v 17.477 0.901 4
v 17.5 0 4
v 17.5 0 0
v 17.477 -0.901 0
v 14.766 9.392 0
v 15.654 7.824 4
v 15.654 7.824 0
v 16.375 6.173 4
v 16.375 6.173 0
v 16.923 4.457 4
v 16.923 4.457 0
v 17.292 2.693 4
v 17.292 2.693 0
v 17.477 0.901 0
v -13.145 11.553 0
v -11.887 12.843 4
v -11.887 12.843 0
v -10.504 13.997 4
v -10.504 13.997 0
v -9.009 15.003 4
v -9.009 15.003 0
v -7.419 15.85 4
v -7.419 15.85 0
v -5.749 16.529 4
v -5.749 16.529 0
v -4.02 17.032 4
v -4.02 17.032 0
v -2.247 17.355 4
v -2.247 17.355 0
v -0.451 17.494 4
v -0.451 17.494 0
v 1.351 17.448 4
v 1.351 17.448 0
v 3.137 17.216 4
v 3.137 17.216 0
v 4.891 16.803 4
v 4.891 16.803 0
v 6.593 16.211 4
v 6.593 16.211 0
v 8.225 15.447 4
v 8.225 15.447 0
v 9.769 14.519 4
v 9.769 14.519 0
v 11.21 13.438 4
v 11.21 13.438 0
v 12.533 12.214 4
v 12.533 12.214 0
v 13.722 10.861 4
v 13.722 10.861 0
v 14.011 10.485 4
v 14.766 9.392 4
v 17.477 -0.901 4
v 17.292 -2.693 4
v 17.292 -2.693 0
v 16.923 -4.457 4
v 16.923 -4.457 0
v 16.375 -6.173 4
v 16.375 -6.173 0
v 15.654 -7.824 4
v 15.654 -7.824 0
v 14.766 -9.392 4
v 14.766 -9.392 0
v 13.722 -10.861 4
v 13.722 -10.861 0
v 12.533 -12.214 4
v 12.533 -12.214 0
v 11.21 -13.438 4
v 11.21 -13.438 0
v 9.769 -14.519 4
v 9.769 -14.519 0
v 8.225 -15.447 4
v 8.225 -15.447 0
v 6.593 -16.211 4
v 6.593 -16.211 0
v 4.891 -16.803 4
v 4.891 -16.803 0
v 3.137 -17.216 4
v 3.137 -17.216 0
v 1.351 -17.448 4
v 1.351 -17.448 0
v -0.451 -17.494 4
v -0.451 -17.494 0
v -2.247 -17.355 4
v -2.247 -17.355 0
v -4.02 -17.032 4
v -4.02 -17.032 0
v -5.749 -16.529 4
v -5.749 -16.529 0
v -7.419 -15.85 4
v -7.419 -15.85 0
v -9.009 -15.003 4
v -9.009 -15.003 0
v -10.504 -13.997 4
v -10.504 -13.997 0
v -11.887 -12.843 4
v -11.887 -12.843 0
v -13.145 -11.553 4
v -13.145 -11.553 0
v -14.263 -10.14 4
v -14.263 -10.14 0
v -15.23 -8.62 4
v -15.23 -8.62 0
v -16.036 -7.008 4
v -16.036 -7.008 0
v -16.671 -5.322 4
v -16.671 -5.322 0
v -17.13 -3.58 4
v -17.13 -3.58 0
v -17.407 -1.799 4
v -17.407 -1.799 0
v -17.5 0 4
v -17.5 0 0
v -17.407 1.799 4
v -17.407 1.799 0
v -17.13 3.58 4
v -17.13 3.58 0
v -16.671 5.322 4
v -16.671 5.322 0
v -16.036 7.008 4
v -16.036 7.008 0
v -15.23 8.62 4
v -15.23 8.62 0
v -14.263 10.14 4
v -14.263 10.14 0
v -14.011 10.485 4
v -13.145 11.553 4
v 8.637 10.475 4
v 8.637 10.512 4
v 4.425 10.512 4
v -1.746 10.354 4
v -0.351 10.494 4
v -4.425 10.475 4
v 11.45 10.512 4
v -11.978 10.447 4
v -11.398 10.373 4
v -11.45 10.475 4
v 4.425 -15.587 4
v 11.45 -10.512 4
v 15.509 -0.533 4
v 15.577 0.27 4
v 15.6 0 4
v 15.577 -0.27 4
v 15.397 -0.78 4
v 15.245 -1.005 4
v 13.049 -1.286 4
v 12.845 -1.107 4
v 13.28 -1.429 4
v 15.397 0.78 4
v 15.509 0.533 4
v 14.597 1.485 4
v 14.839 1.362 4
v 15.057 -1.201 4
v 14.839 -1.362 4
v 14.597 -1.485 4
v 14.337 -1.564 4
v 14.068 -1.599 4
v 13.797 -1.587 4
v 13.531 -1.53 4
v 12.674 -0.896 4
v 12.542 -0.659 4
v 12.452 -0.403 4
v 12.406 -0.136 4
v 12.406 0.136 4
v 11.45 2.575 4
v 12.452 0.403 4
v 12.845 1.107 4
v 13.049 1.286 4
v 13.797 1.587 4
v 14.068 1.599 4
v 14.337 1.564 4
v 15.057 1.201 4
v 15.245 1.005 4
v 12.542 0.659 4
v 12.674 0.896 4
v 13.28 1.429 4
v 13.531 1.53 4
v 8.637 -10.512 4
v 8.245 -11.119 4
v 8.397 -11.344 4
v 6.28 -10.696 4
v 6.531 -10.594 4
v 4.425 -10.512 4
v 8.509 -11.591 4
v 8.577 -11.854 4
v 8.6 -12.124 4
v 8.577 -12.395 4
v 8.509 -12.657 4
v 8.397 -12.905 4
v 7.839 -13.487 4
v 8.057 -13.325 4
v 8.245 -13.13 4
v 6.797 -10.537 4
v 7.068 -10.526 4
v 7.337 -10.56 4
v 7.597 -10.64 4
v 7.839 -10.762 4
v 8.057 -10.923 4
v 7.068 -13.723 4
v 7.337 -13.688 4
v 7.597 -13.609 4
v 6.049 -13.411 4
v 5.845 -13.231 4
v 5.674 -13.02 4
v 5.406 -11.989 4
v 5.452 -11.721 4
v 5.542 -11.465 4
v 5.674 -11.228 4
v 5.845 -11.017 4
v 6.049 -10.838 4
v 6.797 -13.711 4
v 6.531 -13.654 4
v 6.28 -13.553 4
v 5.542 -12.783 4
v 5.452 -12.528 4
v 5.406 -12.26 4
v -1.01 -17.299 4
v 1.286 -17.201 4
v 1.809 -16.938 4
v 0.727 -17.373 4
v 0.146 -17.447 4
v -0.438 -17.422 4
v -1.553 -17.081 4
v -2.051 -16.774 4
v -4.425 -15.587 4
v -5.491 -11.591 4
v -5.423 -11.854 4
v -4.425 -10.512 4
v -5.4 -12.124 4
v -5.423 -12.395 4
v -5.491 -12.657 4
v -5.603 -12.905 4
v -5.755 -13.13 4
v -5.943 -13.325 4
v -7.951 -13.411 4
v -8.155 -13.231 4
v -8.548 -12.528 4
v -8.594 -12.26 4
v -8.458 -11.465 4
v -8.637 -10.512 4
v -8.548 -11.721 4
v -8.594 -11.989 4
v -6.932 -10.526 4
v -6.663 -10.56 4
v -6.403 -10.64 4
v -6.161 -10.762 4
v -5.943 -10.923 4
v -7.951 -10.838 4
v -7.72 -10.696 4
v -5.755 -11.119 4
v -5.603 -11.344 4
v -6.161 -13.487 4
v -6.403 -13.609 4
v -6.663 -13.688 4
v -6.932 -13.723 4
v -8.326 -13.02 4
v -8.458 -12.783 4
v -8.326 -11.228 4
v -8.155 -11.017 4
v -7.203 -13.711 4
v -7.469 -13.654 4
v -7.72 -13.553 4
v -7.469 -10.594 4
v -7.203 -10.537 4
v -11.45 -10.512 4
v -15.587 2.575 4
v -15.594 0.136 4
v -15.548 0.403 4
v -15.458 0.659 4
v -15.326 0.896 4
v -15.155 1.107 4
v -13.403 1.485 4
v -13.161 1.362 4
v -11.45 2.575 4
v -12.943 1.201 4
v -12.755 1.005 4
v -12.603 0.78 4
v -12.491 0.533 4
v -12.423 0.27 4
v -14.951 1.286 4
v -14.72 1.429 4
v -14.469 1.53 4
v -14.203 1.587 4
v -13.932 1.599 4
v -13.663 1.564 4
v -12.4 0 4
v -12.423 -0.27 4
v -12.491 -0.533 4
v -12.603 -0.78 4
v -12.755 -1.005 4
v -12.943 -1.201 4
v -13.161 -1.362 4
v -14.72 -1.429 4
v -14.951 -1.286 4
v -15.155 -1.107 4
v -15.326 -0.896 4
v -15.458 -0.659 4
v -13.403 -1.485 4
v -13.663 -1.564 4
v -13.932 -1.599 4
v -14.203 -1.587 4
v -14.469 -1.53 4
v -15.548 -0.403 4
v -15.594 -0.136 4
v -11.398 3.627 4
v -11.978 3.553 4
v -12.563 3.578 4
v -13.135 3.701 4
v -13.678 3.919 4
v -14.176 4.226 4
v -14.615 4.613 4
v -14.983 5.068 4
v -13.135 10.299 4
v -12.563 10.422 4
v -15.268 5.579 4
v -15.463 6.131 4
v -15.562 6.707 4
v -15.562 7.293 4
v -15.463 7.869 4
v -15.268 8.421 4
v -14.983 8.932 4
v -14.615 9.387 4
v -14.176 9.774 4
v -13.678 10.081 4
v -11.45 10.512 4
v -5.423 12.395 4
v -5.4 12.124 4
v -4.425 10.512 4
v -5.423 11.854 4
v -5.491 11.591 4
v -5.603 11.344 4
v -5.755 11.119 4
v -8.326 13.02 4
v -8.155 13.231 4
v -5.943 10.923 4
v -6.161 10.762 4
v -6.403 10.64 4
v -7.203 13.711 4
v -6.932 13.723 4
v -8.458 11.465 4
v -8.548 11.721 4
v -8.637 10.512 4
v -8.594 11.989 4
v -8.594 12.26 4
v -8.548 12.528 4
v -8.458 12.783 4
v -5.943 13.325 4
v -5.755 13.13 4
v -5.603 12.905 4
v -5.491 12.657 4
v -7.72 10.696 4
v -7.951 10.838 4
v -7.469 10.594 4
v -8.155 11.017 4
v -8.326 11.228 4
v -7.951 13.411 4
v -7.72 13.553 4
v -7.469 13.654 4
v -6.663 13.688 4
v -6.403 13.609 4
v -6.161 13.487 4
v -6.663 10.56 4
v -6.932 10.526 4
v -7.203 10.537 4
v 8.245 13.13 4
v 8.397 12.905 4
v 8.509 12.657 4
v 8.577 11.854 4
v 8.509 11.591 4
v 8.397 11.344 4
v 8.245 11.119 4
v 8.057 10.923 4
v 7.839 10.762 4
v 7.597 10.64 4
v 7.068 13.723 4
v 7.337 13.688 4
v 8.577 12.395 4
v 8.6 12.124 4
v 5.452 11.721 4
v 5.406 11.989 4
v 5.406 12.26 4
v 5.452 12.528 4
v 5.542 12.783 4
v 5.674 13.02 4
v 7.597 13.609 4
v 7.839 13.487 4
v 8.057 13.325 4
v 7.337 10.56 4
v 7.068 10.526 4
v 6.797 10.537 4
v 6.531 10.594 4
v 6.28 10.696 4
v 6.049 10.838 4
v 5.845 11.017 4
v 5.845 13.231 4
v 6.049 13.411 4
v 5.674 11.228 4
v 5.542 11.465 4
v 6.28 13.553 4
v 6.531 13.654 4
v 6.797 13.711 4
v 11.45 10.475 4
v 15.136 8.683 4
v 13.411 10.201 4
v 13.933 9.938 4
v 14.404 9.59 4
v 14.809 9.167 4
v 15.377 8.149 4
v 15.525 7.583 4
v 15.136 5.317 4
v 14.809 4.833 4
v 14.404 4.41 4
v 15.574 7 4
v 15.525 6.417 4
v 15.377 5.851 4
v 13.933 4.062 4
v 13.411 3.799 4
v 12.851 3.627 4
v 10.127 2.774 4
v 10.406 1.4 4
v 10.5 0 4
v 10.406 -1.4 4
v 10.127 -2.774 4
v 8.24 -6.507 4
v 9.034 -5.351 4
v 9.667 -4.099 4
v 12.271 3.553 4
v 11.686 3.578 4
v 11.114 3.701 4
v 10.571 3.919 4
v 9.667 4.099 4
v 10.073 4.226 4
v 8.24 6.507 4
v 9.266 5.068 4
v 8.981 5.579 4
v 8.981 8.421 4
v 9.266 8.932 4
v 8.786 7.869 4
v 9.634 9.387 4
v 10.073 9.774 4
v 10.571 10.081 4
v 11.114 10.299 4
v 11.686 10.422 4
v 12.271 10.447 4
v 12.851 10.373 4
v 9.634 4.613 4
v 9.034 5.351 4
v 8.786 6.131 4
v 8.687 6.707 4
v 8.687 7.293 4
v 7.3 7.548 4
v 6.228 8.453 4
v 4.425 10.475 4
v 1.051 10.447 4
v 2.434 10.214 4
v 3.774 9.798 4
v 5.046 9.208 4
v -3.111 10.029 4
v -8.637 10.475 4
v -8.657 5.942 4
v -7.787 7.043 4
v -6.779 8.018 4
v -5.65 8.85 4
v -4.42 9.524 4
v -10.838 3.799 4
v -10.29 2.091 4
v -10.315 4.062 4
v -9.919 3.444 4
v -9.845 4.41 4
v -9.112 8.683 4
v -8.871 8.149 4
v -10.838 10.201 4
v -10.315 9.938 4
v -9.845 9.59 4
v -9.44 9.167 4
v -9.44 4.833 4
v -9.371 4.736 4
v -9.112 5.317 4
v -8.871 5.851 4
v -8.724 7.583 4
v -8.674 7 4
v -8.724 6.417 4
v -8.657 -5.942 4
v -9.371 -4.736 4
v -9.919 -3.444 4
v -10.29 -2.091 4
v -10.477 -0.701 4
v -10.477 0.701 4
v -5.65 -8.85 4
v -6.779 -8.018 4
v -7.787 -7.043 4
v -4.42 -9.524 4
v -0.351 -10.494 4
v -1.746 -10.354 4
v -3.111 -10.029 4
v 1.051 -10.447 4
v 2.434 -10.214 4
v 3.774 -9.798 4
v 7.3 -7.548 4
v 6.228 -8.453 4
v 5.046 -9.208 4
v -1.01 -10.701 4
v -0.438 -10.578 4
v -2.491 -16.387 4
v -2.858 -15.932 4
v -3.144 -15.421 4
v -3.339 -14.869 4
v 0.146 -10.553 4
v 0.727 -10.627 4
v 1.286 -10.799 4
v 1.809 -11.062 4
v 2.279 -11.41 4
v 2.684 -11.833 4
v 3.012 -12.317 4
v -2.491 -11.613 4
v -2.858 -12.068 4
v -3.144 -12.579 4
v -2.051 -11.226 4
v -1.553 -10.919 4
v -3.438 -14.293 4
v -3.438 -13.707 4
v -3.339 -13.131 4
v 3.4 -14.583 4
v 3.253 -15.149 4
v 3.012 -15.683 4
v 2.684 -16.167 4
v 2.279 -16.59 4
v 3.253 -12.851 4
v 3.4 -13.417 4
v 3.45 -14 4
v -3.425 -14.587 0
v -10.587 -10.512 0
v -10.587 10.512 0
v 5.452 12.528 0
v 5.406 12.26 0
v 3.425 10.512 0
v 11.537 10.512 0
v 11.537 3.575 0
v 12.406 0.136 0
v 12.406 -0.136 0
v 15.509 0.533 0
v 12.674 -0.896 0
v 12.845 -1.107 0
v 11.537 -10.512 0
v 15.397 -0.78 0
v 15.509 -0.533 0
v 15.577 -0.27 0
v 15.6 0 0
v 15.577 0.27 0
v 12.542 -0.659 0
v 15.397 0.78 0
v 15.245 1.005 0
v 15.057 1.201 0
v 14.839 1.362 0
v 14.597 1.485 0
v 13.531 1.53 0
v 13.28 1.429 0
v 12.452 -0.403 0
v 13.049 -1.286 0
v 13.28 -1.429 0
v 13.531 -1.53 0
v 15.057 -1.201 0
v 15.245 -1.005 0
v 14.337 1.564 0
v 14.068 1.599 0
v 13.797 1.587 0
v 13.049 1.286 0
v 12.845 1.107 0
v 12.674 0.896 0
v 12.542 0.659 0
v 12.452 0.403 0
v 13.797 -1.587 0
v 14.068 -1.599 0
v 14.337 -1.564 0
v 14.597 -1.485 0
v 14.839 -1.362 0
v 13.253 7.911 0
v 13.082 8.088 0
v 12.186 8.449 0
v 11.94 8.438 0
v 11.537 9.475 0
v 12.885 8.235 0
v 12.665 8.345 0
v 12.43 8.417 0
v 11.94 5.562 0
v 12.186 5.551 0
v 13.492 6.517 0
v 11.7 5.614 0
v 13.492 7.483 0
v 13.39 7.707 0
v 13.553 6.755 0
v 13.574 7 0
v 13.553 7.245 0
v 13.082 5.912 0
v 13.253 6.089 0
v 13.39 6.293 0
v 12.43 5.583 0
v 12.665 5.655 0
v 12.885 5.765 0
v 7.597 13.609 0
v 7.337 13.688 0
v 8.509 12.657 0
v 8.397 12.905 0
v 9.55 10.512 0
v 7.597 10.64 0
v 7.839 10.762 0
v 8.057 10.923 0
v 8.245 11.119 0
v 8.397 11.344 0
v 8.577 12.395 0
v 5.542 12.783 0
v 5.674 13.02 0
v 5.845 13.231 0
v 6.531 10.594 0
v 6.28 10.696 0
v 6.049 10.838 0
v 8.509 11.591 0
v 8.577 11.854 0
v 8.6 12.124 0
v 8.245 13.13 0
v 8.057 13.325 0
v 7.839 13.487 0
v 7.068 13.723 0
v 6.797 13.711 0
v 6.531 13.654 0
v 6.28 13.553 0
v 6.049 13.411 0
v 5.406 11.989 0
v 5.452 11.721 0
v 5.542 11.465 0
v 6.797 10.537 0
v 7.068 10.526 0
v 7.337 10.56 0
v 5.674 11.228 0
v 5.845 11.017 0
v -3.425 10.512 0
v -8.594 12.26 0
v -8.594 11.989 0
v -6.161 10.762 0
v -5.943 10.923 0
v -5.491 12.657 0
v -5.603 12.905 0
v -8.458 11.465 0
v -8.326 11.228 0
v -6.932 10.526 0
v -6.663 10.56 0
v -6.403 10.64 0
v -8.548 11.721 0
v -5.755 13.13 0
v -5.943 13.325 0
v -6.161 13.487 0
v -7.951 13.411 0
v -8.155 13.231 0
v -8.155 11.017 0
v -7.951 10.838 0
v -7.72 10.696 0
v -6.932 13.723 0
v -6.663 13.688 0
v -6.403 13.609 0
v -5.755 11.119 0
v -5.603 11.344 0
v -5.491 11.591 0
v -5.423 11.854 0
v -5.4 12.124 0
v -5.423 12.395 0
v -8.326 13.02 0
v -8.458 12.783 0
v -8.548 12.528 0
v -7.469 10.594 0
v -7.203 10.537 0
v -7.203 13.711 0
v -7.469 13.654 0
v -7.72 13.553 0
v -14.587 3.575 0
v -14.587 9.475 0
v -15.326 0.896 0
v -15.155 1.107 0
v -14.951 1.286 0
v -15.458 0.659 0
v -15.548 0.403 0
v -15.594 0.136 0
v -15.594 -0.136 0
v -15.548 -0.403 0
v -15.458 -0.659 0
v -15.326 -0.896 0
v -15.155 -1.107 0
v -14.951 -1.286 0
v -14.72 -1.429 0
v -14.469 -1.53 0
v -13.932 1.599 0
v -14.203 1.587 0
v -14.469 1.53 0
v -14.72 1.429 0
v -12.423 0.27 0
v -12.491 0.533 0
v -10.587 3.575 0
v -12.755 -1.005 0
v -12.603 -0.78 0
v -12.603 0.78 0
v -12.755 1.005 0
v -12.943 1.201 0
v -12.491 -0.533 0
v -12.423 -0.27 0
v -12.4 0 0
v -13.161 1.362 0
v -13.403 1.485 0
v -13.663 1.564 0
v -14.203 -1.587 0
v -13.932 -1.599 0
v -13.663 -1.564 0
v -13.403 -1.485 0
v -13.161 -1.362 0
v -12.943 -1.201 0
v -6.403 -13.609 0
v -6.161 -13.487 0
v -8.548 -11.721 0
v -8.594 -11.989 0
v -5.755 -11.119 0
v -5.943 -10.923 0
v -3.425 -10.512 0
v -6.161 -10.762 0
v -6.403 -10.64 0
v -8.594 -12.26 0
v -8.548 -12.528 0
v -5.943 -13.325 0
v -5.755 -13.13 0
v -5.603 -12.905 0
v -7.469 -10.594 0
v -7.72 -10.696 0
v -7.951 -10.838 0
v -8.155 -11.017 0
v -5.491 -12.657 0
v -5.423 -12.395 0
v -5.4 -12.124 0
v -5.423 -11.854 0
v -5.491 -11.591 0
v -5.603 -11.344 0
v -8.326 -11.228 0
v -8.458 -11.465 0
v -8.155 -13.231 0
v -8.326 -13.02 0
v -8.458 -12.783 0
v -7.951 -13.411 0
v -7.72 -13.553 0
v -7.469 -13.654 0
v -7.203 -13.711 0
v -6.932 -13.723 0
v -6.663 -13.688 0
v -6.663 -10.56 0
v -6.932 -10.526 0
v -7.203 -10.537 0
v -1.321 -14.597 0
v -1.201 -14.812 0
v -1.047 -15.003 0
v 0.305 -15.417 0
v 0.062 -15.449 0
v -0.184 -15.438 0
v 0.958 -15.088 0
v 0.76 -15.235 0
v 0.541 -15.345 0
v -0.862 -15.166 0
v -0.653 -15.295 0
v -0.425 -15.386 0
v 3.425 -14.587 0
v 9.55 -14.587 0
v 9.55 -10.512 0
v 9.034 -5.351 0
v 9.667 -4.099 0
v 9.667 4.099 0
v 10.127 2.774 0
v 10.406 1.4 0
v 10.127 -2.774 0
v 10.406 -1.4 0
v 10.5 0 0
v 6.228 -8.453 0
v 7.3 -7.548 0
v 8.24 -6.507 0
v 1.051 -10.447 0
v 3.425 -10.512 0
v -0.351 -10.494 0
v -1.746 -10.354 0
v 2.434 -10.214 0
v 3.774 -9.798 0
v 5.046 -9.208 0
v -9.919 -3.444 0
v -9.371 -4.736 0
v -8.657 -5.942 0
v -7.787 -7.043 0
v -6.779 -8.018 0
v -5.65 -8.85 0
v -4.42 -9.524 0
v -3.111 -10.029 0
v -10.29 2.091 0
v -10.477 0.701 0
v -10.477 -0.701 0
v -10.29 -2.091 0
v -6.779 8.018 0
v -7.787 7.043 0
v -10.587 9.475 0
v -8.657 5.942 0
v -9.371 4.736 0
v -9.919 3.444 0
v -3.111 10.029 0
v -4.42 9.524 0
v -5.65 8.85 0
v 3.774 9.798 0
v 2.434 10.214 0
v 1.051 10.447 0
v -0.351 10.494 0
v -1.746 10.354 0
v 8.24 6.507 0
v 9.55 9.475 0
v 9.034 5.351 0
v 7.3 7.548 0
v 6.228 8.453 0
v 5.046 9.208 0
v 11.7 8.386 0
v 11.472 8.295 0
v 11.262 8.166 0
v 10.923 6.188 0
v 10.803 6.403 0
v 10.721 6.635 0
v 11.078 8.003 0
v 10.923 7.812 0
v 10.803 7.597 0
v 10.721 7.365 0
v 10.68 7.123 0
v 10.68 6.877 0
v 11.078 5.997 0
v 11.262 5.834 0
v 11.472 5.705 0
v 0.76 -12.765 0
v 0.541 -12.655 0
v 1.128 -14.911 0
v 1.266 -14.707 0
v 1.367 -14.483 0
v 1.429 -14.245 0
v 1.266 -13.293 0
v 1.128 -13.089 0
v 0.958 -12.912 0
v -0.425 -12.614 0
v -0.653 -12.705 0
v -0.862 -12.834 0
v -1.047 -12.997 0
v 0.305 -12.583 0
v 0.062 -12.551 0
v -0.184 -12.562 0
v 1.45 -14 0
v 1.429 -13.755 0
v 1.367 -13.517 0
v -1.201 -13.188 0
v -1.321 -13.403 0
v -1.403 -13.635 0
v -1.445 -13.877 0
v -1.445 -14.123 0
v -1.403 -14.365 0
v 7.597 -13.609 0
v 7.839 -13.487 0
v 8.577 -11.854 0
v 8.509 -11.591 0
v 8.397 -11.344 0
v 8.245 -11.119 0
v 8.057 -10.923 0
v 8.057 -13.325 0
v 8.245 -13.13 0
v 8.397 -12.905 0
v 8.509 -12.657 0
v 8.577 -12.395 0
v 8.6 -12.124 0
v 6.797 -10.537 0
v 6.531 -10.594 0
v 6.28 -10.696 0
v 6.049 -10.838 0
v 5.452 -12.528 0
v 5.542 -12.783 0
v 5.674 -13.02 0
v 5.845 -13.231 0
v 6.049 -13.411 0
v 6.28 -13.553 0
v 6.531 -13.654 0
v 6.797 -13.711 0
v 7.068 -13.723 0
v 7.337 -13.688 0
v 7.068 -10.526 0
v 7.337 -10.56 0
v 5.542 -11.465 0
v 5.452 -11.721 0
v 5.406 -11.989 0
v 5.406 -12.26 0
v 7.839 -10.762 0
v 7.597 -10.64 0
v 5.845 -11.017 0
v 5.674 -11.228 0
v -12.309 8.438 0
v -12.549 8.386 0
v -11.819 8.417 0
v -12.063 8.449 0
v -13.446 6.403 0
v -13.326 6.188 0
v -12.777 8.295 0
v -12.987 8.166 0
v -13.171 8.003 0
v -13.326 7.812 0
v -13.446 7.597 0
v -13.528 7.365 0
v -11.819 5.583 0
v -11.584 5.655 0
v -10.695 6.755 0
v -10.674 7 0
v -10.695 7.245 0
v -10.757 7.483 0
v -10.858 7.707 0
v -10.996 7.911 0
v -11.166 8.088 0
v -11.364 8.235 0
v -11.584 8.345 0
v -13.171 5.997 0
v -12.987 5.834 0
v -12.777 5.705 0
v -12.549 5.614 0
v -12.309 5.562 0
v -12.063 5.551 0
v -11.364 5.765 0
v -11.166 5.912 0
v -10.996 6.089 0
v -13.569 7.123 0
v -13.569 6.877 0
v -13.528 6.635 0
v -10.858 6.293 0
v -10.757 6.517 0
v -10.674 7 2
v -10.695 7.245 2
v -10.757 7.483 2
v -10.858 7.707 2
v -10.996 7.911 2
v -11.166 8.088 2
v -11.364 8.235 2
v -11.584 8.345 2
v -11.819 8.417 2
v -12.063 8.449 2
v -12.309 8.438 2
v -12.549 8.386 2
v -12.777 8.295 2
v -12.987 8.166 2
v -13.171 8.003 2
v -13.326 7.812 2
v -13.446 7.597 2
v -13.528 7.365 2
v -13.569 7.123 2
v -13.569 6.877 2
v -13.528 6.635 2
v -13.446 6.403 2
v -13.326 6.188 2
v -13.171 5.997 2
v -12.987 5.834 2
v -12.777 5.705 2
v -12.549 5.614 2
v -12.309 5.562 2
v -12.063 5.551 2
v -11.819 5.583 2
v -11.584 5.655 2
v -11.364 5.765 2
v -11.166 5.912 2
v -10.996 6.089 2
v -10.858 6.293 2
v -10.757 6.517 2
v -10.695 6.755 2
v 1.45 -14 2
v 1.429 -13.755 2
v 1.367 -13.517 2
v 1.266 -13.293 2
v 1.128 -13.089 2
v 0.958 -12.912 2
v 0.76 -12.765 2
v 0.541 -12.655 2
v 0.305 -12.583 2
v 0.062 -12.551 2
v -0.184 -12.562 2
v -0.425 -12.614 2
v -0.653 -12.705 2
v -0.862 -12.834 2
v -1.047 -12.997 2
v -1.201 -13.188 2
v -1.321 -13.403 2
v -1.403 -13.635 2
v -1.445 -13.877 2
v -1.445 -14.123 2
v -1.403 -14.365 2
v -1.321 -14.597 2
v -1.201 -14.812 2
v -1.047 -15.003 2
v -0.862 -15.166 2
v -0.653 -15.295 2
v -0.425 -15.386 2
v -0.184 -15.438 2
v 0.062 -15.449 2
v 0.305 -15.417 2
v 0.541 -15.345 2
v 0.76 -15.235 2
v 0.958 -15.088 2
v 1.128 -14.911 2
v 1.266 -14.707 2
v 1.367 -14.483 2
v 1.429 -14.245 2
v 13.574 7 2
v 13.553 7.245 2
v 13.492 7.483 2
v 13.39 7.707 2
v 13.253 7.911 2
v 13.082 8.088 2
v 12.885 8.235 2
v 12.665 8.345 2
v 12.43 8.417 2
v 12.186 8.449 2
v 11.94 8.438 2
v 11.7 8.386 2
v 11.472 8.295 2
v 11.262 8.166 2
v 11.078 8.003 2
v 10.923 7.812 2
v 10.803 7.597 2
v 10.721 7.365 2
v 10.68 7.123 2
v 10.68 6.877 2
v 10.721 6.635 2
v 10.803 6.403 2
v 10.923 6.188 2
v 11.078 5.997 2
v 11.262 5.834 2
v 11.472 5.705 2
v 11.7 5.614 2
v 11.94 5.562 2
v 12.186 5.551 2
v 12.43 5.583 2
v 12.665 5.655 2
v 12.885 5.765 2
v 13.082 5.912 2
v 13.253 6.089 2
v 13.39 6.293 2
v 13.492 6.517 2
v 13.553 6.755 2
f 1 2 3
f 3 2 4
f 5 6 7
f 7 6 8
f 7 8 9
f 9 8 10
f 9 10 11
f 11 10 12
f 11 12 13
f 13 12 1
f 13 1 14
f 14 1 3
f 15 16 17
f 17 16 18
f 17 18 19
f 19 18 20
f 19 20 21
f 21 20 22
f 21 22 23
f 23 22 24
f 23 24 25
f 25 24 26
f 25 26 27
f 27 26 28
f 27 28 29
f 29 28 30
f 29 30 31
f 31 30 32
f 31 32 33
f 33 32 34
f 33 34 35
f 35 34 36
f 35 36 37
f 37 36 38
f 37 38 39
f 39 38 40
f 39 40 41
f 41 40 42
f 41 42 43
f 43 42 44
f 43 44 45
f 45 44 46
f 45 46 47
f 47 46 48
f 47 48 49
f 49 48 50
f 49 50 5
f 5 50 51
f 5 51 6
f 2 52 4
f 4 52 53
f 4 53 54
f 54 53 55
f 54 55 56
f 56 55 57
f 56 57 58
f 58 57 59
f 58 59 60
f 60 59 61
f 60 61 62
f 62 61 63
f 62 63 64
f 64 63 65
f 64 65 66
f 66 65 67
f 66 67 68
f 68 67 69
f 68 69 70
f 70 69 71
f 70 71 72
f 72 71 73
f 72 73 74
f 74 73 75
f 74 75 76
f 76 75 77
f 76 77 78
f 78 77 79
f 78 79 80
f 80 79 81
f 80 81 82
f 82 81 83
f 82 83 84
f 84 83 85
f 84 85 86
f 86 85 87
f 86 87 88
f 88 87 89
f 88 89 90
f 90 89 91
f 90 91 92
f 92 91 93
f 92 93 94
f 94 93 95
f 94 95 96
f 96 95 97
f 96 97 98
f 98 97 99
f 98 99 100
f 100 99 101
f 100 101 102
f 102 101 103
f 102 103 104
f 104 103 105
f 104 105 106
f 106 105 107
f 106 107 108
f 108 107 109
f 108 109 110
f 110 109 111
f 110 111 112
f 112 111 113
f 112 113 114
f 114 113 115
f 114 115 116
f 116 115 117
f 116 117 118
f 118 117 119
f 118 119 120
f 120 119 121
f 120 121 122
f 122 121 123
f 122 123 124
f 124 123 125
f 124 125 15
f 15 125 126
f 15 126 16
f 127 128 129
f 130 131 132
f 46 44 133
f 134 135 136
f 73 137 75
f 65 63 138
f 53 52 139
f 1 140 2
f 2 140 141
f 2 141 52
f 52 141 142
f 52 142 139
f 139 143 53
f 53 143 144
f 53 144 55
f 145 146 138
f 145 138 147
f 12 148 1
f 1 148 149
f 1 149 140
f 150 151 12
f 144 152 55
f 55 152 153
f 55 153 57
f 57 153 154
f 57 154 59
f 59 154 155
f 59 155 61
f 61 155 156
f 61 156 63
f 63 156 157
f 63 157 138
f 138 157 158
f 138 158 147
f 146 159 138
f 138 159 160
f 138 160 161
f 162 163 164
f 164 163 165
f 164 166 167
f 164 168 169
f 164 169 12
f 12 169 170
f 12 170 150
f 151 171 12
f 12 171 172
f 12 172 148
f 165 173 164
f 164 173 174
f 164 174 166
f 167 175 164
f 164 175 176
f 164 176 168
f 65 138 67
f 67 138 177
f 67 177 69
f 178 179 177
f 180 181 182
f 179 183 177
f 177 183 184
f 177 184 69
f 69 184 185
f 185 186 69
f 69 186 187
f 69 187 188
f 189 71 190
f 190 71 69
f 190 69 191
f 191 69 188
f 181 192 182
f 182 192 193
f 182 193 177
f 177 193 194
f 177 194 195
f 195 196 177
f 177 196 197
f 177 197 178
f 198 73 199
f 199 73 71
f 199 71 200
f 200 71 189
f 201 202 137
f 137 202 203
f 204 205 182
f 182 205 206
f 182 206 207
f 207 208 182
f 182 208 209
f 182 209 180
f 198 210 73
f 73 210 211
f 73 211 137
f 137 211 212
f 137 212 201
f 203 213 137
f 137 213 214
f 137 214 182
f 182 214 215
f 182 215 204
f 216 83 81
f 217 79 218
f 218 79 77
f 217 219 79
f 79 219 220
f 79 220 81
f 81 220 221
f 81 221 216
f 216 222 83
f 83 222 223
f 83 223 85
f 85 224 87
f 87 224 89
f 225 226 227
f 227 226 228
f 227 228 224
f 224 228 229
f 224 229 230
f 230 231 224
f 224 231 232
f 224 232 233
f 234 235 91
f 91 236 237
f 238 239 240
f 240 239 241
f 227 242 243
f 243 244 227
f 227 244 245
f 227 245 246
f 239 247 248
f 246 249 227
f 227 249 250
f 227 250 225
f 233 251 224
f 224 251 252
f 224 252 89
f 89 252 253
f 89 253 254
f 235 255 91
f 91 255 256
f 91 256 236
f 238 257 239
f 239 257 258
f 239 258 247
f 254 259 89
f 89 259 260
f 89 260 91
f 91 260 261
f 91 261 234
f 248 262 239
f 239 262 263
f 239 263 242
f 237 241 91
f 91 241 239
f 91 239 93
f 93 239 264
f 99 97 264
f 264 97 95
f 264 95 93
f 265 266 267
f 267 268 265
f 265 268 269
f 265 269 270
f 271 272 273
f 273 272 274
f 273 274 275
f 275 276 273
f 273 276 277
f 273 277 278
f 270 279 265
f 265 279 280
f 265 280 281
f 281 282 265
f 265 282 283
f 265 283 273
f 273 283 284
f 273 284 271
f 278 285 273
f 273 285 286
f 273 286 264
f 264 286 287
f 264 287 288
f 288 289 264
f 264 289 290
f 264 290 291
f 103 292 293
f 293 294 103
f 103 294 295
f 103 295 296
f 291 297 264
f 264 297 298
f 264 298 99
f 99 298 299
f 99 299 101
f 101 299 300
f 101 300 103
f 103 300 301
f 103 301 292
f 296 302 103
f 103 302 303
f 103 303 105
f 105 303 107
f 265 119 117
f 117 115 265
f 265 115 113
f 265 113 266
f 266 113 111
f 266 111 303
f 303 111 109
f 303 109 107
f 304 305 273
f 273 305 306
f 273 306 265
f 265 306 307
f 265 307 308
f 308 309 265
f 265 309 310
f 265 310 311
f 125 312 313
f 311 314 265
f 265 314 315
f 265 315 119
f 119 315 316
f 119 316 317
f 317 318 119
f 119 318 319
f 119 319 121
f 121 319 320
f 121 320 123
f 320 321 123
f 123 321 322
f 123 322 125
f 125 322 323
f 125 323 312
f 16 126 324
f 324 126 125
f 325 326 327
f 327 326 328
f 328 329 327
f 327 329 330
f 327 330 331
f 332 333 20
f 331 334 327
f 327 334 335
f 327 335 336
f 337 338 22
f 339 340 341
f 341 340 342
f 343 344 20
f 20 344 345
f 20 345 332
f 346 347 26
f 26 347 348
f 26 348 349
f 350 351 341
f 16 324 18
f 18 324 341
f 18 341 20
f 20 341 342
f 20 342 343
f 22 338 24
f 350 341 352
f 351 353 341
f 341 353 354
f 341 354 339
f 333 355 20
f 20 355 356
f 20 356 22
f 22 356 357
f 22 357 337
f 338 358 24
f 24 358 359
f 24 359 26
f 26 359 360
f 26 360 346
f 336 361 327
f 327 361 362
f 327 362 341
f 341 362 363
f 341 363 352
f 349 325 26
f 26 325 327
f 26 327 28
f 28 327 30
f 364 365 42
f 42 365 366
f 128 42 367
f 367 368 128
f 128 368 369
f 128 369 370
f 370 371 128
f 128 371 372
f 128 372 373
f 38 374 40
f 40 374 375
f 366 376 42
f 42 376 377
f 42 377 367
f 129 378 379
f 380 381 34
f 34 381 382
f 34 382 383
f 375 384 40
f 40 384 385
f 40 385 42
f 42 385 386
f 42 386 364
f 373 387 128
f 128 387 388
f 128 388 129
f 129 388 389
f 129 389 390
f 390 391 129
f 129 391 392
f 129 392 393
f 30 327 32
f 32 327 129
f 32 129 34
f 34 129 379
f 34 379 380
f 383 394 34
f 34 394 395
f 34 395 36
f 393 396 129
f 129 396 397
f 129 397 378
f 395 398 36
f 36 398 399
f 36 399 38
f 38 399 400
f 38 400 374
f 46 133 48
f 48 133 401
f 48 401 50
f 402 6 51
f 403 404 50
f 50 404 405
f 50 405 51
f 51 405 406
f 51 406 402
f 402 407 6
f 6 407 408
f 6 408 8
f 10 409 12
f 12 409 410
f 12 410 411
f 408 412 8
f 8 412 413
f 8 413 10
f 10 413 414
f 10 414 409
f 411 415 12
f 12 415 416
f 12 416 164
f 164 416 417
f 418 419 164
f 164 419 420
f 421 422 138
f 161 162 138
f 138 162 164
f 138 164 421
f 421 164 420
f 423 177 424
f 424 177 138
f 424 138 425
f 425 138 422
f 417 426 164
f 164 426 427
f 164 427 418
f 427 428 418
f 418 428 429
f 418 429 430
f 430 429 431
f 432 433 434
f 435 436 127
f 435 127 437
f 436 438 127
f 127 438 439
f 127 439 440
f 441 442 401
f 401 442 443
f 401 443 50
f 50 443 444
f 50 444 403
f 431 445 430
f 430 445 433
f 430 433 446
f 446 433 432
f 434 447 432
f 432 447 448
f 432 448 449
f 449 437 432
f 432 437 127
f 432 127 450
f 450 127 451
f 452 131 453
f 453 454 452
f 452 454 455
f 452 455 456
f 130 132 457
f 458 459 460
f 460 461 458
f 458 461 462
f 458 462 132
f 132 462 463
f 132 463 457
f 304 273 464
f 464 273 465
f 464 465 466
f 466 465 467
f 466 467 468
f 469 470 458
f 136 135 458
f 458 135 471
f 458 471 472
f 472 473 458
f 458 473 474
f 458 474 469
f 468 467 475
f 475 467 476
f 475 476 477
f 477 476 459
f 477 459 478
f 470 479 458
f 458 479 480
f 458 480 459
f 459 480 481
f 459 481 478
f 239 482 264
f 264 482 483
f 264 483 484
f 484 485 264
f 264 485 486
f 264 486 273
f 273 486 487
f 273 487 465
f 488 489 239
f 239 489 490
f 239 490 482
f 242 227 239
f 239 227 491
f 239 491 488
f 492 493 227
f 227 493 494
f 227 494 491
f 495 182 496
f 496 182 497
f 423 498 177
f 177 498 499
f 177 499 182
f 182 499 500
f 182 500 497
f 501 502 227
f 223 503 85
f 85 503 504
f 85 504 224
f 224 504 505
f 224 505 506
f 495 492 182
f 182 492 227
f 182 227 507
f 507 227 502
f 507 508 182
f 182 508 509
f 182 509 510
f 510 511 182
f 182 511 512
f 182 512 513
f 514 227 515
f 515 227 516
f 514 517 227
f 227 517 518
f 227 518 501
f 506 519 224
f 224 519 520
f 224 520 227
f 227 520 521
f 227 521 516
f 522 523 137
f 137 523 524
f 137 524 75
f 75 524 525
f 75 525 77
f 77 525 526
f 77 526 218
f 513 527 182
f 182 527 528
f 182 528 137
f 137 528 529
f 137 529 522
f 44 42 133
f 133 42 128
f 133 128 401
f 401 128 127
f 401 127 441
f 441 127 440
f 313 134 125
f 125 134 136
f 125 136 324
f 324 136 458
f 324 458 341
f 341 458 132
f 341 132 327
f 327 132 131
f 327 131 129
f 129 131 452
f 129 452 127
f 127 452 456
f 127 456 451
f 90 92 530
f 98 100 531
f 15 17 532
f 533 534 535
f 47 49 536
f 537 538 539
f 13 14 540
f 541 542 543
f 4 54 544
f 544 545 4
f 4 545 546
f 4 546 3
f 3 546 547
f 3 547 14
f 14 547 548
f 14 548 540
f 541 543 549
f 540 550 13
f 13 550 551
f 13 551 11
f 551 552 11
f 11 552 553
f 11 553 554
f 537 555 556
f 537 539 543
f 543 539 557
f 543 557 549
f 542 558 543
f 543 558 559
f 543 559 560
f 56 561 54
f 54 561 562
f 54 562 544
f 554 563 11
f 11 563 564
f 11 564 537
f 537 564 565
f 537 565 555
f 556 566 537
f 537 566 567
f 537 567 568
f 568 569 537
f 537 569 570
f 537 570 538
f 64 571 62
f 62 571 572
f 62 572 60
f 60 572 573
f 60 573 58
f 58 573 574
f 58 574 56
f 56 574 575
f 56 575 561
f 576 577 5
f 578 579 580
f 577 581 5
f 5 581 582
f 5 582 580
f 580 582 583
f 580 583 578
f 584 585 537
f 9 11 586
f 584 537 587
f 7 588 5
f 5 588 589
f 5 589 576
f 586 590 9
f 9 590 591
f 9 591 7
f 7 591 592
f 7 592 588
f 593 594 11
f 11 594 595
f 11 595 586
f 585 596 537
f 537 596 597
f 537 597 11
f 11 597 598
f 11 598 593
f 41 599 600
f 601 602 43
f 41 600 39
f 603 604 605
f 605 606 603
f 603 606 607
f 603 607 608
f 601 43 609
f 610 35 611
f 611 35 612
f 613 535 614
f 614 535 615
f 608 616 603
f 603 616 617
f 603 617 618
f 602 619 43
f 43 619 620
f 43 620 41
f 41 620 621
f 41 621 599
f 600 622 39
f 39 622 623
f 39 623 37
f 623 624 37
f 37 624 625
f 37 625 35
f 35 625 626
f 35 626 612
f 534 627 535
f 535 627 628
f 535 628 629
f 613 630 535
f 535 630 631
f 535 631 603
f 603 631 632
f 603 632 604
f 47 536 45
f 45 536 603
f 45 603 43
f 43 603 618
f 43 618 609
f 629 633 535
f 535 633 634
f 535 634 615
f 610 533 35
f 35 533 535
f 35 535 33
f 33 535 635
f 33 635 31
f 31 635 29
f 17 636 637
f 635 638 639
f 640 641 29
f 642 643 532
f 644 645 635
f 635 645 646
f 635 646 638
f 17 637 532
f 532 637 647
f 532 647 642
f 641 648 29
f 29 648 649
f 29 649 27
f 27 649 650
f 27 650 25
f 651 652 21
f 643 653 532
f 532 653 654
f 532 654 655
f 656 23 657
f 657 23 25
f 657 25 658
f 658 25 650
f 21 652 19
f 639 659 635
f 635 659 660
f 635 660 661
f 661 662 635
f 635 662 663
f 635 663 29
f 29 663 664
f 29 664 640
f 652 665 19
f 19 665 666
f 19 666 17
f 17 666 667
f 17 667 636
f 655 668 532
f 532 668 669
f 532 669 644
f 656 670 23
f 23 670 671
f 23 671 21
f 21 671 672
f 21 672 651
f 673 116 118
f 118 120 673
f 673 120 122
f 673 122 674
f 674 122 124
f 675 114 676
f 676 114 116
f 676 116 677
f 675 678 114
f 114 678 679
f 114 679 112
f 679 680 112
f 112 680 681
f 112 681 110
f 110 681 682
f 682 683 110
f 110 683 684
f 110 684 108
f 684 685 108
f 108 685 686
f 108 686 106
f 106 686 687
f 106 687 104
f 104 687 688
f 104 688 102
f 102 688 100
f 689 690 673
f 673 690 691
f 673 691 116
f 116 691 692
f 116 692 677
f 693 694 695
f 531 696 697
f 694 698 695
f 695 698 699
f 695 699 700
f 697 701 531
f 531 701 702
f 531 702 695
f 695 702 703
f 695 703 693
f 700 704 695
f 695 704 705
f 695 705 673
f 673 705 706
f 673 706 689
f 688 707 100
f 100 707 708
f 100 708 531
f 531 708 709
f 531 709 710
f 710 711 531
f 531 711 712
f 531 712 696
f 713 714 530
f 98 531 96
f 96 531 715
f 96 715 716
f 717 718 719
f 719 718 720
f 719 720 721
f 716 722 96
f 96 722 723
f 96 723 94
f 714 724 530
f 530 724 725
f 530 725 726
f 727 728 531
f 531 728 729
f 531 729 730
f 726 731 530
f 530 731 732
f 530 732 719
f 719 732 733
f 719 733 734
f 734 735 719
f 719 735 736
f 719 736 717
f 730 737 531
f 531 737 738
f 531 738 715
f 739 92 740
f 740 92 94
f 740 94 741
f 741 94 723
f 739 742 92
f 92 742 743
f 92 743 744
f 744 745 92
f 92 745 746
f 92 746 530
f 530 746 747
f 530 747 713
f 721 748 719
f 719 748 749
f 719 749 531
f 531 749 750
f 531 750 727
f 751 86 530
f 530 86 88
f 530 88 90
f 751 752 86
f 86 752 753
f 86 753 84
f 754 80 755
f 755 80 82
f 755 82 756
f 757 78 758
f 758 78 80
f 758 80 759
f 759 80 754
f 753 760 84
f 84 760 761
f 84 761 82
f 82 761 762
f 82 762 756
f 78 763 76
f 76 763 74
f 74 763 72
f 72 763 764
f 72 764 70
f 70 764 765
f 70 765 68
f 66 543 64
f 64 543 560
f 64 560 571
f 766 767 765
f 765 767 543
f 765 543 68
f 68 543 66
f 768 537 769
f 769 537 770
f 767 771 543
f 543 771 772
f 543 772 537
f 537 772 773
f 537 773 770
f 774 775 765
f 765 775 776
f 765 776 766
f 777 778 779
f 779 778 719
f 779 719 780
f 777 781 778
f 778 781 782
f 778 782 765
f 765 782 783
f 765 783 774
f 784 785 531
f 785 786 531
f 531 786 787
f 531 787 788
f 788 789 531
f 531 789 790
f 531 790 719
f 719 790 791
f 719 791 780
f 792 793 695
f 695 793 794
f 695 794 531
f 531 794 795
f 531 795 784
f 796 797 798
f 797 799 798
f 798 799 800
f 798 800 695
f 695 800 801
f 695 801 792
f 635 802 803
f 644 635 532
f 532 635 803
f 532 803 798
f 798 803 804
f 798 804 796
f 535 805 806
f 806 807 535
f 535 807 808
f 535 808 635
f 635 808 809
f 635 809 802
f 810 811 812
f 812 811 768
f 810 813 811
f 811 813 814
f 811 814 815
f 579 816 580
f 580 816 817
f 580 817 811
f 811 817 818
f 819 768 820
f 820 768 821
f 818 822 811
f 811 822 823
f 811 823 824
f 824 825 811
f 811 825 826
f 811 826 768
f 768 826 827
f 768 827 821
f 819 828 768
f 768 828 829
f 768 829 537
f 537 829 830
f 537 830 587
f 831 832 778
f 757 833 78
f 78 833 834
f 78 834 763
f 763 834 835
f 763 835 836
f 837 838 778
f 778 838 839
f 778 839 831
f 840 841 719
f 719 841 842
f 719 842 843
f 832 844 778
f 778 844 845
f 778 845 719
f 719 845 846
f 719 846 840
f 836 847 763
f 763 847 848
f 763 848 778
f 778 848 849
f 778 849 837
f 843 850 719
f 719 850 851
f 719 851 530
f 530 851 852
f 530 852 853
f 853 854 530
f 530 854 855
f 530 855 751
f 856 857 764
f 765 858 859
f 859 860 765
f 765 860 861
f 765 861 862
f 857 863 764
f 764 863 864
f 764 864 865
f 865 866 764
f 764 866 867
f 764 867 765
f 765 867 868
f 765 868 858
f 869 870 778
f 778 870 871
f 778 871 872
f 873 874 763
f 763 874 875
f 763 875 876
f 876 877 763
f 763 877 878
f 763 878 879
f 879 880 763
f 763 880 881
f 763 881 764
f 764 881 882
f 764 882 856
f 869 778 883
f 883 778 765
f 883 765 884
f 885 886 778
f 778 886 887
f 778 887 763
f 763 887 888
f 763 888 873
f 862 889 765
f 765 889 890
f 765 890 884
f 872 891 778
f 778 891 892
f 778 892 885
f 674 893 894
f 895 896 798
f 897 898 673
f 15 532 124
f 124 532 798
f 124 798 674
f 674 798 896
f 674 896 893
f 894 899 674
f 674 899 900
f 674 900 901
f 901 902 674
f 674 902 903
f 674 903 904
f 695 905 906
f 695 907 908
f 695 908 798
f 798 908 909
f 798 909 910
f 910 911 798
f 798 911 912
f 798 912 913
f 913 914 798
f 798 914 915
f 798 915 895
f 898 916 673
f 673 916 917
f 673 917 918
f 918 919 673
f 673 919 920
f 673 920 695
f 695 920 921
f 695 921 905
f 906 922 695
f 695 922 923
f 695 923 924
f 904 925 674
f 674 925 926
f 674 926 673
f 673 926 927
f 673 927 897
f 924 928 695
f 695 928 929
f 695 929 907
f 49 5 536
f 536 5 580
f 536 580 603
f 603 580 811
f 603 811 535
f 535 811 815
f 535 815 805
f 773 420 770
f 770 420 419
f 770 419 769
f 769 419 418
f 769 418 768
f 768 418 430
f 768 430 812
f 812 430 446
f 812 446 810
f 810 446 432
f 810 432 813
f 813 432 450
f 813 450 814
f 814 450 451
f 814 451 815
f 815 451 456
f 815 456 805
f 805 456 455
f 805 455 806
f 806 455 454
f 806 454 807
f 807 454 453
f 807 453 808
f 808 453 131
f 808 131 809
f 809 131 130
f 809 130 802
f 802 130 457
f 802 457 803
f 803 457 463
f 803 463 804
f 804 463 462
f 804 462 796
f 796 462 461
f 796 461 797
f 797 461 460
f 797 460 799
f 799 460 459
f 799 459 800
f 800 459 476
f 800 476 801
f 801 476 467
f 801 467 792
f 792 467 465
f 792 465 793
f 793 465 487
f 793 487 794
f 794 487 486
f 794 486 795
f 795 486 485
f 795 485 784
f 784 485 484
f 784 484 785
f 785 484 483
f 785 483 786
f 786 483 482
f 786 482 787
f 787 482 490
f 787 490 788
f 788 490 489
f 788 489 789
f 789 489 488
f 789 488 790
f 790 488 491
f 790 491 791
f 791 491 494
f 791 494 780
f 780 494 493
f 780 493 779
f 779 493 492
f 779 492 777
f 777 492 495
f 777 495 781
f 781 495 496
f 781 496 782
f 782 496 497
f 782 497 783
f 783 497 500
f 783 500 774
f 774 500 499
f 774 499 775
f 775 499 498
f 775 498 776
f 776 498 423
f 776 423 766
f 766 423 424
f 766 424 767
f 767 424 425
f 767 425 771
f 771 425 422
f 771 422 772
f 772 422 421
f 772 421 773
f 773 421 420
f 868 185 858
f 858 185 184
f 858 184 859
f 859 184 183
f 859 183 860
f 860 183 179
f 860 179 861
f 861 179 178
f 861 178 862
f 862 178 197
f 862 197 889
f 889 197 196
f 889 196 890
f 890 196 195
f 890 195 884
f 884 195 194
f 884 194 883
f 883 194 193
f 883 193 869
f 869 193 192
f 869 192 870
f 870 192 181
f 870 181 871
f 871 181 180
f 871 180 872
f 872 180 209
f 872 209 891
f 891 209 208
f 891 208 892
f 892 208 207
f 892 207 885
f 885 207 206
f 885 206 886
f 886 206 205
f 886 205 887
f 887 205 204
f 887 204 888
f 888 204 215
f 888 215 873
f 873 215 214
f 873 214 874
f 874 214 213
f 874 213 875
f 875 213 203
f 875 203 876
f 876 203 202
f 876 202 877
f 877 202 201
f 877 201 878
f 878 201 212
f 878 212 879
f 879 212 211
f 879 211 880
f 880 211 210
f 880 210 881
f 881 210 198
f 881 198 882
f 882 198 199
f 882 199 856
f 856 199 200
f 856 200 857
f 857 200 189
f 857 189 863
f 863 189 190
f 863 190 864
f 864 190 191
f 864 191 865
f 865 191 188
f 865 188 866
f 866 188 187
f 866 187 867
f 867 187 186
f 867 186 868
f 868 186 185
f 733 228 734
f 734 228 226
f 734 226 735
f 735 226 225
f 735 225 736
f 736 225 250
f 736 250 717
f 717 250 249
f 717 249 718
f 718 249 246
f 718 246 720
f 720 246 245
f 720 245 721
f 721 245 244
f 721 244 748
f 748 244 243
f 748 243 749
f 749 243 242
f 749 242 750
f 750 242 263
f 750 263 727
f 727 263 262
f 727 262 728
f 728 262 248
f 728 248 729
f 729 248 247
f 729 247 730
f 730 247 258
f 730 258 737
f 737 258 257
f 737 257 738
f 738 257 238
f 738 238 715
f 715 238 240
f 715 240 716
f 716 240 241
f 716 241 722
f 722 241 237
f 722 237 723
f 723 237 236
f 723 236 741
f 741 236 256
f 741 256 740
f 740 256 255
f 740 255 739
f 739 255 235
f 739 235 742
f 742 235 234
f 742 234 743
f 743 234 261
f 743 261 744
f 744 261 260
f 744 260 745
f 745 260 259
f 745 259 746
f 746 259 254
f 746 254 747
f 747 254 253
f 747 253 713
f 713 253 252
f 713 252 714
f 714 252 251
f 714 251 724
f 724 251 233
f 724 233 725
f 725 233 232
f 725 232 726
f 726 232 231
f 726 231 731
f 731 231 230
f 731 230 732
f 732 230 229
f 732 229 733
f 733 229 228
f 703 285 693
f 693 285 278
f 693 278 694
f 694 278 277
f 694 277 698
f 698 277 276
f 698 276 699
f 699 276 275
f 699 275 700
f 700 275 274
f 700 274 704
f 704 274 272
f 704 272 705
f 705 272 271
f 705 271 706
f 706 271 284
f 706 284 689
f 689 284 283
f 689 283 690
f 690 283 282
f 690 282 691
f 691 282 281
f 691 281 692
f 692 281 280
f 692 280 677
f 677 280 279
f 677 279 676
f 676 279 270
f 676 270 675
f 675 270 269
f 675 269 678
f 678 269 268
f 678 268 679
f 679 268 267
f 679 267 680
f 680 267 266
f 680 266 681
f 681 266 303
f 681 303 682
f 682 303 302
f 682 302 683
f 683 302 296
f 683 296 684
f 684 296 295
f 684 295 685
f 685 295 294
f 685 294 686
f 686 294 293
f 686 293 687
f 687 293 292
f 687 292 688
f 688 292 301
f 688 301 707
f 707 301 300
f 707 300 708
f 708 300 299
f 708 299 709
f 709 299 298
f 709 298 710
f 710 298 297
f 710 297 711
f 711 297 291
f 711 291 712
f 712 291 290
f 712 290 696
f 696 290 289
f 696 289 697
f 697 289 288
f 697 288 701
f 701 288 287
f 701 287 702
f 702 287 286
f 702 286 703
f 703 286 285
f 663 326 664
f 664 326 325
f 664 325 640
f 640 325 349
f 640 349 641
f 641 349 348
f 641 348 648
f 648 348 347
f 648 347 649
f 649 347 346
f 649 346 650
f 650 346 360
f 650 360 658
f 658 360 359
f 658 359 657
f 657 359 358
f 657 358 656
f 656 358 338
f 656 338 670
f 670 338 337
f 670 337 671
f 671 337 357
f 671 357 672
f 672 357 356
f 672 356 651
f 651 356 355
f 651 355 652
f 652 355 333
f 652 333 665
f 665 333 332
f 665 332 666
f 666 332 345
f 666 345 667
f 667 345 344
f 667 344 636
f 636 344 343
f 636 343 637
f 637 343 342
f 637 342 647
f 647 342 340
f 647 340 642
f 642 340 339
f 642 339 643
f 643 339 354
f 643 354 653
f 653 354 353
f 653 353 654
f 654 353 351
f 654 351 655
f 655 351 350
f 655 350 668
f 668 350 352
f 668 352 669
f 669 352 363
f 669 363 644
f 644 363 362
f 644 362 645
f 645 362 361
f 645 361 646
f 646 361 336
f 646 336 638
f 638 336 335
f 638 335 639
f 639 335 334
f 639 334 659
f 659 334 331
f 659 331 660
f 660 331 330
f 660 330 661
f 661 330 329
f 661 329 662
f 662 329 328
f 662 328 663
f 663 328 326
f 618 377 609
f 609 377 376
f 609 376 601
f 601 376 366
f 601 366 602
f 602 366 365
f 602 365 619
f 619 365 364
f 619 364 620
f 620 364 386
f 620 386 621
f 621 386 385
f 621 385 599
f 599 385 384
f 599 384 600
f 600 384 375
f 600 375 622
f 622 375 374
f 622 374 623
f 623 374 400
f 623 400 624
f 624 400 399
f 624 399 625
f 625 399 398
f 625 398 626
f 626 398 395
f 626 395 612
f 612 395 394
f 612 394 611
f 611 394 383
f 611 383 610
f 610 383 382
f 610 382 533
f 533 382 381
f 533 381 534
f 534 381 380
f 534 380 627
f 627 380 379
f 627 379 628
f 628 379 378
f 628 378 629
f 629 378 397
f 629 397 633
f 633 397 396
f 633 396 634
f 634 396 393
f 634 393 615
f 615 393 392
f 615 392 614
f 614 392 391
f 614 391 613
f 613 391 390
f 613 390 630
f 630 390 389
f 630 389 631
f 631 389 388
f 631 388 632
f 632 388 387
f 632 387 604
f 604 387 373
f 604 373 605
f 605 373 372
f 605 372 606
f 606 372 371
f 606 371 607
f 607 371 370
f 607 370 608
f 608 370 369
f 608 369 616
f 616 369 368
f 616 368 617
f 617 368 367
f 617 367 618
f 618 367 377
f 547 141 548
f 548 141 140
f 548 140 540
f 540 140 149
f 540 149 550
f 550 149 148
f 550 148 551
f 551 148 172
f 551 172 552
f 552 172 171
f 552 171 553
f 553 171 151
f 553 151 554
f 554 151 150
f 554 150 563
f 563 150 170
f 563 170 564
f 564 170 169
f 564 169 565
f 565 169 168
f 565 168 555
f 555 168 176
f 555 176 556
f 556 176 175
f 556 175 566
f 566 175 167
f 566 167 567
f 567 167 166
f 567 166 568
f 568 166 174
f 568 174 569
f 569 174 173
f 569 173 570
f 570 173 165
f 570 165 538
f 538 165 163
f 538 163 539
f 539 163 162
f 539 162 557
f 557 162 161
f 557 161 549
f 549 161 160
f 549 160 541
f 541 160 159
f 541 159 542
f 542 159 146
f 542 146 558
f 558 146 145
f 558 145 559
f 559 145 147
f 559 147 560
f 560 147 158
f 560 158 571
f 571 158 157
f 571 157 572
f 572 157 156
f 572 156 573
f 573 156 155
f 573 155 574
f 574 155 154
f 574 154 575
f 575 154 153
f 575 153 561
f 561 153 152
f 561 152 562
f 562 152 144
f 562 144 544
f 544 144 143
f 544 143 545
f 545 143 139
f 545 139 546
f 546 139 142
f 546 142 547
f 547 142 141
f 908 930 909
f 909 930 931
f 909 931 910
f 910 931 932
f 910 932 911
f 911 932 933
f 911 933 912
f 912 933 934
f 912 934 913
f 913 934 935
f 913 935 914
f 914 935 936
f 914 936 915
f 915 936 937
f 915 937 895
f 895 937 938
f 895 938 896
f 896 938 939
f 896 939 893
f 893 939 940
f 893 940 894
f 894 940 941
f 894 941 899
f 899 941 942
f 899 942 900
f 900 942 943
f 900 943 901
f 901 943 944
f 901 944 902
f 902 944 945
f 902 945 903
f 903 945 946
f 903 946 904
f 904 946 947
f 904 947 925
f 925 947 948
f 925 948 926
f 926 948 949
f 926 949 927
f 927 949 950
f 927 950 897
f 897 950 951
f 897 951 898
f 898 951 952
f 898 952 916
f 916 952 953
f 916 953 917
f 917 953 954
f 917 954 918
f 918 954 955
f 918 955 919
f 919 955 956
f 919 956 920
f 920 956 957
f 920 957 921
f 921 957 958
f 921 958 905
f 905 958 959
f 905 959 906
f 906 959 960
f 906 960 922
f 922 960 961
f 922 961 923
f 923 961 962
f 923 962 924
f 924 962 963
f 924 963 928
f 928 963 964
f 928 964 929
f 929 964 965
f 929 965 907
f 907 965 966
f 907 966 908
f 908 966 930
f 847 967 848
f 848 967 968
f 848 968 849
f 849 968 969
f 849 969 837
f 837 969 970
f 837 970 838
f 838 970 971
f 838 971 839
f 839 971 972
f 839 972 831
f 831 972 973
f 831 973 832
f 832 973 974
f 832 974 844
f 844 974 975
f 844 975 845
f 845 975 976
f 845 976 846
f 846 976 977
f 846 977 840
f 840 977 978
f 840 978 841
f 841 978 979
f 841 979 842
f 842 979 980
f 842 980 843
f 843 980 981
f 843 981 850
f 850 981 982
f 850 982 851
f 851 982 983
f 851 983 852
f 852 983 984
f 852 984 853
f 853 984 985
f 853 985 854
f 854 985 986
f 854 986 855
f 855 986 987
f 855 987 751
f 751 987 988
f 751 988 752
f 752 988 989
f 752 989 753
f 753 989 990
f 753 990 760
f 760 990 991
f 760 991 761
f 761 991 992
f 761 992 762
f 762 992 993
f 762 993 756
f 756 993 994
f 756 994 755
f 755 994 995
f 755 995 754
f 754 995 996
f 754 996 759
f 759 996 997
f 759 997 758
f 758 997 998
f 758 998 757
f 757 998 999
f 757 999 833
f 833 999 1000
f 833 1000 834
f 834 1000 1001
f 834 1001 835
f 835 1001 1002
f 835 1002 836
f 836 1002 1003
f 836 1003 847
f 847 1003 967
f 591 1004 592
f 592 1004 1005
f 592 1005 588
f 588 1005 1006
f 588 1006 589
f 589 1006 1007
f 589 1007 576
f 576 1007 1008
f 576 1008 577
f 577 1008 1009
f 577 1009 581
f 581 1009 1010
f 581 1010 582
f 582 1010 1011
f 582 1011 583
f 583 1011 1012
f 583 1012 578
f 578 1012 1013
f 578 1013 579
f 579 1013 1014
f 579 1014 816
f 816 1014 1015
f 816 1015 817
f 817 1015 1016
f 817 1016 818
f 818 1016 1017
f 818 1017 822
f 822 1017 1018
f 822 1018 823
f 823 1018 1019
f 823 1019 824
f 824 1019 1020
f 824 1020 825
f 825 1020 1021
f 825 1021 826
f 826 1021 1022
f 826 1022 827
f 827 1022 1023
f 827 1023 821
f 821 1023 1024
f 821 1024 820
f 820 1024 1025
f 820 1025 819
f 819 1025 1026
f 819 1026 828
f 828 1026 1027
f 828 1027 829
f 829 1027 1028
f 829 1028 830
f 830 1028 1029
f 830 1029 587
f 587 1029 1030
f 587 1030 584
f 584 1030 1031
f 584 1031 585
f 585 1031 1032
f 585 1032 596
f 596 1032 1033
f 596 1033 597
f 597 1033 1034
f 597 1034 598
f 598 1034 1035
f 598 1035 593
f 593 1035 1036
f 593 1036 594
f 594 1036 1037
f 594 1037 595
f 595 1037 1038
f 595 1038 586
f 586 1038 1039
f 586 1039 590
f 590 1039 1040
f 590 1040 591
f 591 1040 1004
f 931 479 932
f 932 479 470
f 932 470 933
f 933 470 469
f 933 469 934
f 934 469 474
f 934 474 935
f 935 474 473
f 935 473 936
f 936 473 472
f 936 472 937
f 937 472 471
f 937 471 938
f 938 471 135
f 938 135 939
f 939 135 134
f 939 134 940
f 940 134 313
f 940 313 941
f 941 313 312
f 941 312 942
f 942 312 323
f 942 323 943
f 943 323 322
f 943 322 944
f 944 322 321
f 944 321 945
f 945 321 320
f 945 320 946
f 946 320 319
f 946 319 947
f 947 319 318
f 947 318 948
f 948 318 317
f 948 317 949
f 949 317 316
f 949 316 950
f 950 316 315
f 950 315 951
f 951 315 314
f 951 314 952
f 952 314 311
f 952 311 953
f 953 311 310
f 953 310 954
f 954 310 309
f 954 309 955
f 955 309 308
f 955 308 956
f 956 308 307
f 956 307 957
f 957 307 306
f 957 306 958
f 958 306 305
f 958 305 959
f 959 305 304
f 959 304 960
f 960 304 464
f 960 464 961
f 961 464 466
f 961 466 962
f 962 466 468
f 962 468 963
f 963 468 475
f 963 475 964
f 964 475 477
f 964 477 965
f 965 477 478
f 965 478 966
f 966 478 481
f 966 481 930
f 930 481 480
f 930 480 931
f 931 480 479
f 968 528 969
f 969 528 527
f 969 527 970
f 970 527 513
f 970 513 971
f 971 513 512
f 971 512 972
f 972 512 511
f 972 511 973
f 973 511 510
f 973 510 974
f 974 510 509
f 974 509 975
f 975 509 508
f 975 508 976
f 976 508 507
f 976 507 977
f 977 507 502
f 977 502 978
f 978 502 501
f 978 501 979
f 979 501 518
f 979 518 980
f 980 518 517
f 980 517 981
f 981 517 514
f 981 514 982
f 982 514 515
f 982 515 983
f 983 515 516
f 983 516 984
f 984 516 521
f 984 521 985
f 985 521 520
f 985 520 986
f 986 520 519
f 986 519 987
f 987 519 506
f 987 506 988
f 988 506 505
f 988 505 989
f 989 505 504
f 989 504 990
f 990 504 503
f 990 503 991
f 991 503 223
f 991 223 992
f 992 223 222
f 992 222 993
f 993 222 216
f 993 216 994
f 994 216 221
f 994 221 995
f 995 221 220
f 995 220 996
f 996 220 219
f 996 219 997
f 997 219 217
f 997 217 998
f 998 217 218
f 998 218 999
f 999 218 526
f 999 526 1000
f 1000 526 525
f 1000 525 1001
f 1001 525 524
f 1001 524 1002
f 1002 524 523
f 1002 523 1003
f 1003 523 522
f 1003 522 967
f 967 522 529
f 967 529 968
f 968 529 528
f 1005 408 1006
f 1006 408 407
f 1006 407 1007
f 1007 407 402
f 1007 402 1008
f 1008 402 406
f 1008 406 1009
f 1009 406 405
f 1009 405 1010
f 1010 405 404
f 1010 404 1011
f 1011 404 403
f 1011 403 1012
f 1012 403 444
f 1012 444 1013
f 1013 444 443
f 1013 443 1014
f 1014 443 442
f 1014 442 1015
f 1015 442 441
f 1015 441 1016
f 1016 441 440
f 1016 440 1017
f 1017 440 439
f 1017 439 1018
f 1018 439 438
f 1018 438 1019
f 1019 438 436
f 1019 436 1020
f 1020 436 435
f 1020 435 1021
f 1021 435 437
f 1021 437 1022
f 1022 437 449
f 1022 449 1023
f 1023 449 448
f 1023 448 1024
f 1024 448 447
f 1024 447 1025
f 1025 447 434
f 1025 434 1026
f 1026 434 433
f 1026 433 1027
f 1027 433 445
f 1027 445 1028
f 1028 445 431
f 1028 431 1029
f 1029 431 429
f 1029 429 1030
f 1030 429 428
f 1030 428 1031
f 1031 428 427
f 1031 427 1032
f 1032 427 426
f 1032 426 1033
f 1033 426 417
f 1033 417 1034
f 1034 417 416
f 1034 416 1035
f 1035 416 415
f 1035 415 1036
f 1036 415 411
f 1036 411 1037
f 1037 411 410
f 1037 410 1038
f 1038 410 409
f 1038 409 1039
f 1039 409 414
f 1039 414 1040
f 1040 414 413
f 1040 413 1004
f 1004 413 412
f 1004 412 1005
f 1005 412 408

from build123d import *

# Parameters (mm, degrees)
SKETCH1_R           = 17.5
BOSS_EXTRUDE1_DEPTH = 4
SKETCH2_R           = 10.5
CUT_EXTRUDE1_DEPTH  = 26.069902273
SKETCH3_R           = 1.6
CUT_EXTRUDE2_DEPTH  = 26.069902273
SKETCH4_R           = 1.45
CUT_EXTRUDE3_DEPTH  = 26.069902273
CHAMFER1_SIZE       = 2


with BuildPart() as part:
    # Sketch1 → Boss-Extrude1 (new body)
    with BuildSketch(Plane.XY):
        Circle(SKETCH1_R)
    extrude(amount=BOSS_EXTRUDE1_DEPTH)

    # Sketch2 → Cut-Extrude1 (cut, through all)
    with BuildSketch(Plane.XY.offset(4)):
        Circle(SKETCH2_R)
    extrude(amount=-CUT_EXTRUDE1_DEPTH, mode=Mode.SUBTRACT)

    # Sketch3 → Cut-Extrude2 (cut, through all)
    with BuildSketch(Plane.XY.offset(4)):
        with Locations((14, 0)):
            Circle(SKETCH3_R)
        with Locations((7, -12.124355653)):
            Circle(SKETCH3_R)
        with Locations((-7, -12.124355653)):
            Circle(SKETCH3_R)
        with Locations((-14, 0)):
            Circle(SKETCH3_R)
        with Locations((-7, 12.124355653)):
            Circle(SKETCH3_R)
        with Locations((7, 12.124355653)):
            Circle(SKETCH3_R)
    extrude(amount=-CUT_EXTRUDE2_DEPTH, mode=Mode.SUBTRACT)

    # Sketch4 → Cut-Extrude3 (cut, through all)
    with BuildSketch(Plane.XY.offset(4)):
        with Locations((12.124355653, 7)):
            Circle(SKETCH4_R)
        with Locations((0, -14)):
            Circle(SKETCH4_R)
        with Locations((-12.124355653, 7)):
            Circle(SKETCH4_R)
    extrude(amount=-CUT_EXTRUDE3_DEPTH, mode=Mode.SUBTRACT)

    # Chamfer1
    chamfer1_edges = [part.edges().sort_by_distance(p)[0] for p in [
        (10.674355653, 7, 4),
        (-1.45, -14, 4),
        (-13.574355653, 7, 4),
    ]]
    chamfer(chamfer1_edges, length=CHAMFER1_SIZE)


solid = part.part
